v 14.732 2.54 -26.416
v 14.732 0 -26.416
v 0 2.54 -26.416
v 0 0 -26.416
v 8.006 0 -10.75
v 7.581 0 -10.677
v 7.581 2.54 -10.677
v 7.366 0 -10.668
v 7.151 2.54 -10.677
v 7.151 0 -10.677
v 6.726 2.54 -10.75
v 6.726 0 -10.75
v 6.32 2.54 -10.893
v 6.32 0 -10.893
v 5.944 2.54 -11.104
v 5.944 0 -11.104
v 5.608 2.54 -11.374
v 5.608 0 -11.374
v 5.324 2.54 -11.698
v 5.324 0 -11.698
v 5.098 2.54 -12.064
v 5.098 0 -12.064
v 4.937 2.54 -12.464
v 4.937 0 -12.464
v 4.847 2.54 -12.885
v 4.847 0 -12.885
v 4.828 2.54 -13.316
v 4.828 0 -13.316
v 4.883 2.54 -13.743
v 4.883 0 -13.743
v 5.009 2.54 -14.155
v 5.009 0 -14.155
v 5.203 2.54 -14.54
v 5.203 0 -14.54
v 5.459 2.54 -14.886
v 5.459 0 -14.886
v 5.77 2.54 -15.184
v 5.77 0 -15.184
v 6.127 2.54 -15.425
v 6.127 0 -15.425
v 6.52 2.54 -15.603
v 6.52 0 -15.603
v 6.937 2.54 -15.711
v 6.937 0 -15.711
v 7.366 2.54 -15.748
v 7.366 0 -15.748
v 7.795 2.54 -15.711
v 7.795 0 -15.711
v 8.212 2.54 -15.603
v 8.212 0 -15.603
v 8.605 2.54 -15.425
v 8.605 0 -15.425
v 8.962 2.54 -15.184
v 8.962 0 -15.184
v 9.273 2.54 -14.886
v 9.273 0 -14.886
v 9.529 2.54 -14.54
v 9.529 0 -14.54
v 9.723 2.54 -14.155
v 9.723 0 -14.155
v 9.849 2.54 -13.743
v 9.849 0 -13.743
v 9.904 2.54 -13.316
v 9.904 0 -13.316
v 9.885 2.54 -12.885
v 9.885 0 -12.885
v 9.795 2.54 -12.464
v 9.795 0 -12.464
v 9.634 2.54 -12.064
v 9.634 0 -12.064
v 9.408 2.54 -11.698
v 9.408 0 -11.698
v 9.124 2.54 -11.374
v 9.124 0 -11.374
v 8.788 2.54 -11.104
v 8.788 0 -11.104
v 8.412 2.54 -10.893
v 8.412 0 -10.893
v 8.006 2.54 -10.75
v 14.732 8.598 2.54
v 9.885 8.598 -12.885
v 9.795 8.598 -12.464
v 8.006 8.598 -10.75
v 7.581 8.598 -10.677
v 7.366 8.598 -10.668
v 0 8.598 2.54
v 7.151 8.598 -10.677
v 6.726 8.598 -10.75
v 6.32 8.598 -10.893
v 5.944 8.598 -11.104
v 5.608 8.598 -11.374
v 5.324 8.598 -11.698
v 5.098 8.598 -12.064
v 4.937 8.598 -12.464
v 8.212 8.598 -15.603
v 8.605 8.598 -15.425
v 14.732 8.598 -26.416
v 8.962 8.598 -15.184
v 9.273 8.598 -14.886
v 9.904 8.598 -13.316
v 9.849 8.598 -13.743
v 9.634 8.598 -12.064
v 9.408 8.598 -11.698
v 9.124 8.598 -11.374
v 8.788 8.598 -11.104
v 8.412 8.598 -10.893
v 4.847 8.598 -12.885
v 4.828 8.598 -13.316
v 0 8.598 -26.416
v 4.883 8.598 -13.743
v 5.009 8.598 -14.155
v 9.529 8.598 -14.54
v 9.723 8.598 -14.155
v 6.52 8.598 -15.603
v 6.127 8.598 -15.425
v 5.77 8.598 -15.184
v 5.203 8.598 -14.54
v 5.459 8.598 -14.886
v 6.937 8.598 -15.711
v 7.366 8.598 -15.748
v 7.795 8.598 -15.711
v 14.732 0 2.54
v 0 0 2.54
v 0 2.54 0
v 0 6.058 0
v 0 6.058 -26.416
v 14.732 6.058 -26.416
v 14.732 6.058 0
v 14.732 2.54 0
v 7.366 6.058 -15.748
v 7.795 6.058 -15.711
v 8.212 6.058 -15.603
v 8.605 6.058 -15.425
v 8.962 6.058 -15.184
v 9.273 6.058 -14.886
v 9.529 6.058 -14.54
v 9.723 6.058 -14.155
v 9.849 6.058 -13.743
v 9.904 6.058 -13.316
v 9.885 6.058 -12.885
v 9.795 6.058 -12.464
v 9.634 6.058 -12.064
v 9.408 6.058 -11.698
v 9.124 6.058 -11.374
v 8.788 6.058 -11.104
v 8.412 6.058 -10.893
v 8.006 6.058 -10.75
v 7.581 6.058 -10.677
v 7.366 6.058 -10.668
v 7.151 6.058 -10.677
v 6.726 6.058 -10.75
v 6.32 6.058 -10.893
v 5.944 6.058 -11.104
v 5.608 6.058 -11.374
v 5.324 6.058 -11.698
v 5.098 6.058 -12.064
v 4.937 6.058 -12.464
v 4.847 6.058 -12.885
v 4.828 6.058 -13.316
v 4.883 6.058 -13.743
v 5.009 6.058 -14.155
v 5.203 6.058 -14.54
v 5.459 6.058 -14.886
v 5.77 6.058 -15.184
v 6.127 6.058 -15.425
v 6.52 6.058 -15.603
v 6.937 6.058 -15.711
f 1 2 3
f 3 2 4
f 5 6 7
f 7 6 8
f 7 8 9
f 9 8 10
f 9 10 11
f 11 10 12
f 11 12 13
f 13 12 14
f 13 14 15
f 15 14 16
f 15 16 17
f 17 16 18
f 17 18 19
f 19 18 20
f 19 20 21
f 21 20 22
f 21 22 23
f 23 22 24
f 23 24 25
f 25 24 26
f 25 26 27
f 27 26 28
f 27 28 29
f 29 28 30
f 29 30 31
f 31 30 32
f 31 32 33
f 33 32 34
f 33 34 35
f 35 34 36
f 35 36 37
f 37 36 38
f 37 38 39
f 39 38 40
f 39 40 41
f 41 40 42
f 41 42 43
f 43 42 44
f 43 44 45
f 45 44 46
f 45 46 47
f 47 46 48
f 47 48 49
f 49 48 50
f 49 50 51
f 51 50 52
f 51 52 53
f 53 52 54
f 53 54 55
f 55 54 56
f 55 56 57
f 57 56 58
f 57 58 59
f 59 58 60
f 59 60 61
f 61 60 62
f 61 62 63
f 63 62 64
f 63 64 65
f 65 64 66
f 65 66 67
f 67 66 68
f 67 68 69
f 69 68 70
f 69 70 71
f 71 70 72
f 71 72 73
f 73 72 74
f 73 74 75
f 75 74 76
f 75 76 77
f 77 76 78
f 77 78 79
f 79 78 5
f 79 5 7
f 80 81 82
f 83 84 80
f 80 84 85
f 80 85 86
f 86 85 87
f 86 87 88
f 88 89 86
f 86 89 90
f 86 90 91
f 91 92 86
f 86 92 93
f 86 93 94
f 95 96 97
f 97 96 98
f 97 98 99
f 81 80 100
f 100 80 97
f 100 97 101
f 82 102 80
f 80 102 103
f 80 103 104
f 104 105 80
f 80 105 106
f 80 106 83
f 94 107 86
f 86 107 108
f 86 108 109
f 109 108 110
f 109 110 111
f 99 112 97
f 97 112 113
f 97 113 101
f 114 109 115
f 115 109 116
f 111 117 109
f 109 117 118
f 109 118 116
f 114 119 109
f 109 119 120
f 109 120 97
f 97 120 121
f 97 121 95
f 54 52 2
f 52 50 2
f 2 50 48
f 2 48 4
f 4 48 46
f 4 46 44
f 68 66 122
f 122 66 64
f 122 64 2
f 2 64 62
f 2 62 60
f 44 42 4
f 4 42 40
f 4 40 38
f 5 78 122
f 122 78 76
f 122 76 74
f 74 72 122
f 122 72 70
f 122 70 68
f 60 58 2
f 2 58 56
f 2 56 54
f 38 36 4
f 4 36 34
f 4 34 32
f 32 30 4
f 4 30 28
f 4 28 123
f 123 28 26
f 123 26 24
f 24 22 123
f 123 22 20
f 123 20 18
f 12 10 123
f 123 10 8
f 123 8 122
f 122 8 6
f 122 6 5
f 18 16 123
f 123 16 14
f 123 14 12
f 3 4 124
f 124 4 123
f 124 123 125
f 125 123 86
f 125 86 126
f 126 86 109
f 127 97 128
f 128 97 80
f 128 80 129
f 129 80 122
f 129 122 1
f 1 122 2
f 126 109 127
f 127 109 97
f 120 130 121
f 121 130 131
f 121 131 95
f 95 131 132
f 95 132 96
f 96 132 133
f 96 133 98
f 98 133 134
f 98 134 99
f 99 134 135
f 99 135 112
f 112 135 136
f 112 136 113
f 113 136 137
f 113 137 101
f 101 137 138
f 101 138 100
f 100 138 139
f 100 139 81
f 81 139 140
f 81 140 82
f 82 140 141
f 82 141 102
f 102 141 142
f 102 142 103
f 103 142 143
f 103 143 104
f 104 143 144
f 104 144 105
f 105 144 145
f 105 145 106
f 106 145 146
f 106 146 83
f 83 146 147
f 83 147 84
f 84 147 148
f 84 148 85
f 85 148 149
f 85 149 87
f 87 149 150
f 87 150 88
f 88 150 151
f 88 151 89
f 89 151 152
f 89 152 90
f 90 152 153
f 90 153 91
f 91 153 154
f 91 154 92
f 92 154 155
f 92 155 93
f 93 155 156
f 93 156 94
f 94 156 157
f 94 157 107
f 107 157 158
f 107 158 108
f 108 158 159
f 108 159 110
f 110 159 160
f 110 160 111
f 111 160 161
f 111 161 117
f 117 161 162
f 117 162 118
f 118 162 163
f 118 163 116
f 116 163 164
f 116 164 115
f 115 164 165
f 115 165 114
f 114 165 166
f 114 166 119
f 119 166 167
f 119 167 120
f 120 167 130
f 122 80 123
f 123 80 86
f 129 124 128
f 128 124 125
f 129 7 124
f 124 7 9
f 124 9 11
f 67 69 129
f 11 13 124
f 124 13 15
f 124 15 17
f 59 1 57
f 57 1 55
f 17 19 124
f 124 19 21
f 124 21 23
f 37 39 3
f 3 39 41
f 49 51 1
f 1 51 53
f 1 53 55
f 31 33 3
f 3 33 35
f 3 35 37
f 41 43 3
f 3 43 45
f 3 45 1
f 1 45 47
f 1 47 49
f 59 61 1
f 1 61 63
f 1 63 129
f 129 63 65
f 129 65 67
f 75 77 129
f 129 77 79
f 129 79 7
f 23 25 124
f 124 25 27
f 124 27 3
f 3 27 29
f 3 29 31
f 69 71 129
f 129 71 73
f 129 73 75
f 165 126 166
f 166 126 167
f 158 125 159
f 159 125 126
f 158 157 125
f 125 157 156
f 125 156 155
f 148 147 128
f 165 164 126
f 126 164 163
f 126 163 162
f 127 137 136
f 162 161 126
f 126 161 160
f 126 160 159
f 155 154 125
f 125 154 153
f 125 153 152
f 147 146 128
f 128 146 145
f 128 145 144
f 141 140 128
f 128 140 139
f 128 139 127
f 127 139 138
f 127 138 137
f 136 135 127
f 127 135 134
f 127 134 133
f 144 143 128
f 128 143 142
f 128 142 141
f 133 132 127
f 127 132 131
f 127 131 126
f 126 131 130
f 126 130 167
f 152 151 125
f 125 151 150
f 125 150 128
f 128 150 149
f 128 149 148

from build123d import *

# Parameters (mm, degrees)
SKETCH1_W           = 14.732
SKETCH1_H           = 26.416
SKETCH1_R           = 2.54
BOSS_EXTRUDE1_DEPTH = 8.5979
SKETCH2_W           = 14.732
SKETCH2_H           = 8.5979
BOSS_EXTRUDE2_DEPTH = 2.54
SKETCH3_W           = 26.416
SKETCH3_H           = 3.5179
CUT_EXTRUDE1_DEPTH  = 25.4


with BuildPart() as part:
    # Sketch1 → Boss-Extrude1 (new body)
    with BuildSketch(Plane(origin=(0, 0, 0), x_dir=(1, 0, 0), z_dir=(0, 1, 0))):
        with Locations((7.366, 13.208)):
            Rectangle(SKETCH1_W, SKETCH1_H)
        with Locations(Location((7.366, 13.208, 0), (0, 0, 270))):
            Circle(SKETCH1_R, mode=Mode.SUBTRACT)
    extrude(amount=BOSS_EXTRUDE1_DEPTH)

    # Sketch2 → Boss-Extrude2 (add)
    with BuildSketch(Plane.XY):
        with Locations((7.366, 4.29895)):
            Rectangle(SKETCH2_W, SKETCH2_H)
    extrude(amount=BOSS_EXTRUDE2_DEPTH)

    # Sketch3 → Cut-Extrude1 (cut)
    with BuildSketch(Plane(origin=(14.732, 0, 0), x_dir=(0, 0, -1), z_dir=(1, 0, 0))):
        with Locations((13.208, 4.29895)):
            Rectangle(SKETCH3_W, SKETCH3_H)
    extrude(amount=-CUT_EXTRUDE1_DEPTH, mode=Mode.SUBTRACT)


solid = part.part
